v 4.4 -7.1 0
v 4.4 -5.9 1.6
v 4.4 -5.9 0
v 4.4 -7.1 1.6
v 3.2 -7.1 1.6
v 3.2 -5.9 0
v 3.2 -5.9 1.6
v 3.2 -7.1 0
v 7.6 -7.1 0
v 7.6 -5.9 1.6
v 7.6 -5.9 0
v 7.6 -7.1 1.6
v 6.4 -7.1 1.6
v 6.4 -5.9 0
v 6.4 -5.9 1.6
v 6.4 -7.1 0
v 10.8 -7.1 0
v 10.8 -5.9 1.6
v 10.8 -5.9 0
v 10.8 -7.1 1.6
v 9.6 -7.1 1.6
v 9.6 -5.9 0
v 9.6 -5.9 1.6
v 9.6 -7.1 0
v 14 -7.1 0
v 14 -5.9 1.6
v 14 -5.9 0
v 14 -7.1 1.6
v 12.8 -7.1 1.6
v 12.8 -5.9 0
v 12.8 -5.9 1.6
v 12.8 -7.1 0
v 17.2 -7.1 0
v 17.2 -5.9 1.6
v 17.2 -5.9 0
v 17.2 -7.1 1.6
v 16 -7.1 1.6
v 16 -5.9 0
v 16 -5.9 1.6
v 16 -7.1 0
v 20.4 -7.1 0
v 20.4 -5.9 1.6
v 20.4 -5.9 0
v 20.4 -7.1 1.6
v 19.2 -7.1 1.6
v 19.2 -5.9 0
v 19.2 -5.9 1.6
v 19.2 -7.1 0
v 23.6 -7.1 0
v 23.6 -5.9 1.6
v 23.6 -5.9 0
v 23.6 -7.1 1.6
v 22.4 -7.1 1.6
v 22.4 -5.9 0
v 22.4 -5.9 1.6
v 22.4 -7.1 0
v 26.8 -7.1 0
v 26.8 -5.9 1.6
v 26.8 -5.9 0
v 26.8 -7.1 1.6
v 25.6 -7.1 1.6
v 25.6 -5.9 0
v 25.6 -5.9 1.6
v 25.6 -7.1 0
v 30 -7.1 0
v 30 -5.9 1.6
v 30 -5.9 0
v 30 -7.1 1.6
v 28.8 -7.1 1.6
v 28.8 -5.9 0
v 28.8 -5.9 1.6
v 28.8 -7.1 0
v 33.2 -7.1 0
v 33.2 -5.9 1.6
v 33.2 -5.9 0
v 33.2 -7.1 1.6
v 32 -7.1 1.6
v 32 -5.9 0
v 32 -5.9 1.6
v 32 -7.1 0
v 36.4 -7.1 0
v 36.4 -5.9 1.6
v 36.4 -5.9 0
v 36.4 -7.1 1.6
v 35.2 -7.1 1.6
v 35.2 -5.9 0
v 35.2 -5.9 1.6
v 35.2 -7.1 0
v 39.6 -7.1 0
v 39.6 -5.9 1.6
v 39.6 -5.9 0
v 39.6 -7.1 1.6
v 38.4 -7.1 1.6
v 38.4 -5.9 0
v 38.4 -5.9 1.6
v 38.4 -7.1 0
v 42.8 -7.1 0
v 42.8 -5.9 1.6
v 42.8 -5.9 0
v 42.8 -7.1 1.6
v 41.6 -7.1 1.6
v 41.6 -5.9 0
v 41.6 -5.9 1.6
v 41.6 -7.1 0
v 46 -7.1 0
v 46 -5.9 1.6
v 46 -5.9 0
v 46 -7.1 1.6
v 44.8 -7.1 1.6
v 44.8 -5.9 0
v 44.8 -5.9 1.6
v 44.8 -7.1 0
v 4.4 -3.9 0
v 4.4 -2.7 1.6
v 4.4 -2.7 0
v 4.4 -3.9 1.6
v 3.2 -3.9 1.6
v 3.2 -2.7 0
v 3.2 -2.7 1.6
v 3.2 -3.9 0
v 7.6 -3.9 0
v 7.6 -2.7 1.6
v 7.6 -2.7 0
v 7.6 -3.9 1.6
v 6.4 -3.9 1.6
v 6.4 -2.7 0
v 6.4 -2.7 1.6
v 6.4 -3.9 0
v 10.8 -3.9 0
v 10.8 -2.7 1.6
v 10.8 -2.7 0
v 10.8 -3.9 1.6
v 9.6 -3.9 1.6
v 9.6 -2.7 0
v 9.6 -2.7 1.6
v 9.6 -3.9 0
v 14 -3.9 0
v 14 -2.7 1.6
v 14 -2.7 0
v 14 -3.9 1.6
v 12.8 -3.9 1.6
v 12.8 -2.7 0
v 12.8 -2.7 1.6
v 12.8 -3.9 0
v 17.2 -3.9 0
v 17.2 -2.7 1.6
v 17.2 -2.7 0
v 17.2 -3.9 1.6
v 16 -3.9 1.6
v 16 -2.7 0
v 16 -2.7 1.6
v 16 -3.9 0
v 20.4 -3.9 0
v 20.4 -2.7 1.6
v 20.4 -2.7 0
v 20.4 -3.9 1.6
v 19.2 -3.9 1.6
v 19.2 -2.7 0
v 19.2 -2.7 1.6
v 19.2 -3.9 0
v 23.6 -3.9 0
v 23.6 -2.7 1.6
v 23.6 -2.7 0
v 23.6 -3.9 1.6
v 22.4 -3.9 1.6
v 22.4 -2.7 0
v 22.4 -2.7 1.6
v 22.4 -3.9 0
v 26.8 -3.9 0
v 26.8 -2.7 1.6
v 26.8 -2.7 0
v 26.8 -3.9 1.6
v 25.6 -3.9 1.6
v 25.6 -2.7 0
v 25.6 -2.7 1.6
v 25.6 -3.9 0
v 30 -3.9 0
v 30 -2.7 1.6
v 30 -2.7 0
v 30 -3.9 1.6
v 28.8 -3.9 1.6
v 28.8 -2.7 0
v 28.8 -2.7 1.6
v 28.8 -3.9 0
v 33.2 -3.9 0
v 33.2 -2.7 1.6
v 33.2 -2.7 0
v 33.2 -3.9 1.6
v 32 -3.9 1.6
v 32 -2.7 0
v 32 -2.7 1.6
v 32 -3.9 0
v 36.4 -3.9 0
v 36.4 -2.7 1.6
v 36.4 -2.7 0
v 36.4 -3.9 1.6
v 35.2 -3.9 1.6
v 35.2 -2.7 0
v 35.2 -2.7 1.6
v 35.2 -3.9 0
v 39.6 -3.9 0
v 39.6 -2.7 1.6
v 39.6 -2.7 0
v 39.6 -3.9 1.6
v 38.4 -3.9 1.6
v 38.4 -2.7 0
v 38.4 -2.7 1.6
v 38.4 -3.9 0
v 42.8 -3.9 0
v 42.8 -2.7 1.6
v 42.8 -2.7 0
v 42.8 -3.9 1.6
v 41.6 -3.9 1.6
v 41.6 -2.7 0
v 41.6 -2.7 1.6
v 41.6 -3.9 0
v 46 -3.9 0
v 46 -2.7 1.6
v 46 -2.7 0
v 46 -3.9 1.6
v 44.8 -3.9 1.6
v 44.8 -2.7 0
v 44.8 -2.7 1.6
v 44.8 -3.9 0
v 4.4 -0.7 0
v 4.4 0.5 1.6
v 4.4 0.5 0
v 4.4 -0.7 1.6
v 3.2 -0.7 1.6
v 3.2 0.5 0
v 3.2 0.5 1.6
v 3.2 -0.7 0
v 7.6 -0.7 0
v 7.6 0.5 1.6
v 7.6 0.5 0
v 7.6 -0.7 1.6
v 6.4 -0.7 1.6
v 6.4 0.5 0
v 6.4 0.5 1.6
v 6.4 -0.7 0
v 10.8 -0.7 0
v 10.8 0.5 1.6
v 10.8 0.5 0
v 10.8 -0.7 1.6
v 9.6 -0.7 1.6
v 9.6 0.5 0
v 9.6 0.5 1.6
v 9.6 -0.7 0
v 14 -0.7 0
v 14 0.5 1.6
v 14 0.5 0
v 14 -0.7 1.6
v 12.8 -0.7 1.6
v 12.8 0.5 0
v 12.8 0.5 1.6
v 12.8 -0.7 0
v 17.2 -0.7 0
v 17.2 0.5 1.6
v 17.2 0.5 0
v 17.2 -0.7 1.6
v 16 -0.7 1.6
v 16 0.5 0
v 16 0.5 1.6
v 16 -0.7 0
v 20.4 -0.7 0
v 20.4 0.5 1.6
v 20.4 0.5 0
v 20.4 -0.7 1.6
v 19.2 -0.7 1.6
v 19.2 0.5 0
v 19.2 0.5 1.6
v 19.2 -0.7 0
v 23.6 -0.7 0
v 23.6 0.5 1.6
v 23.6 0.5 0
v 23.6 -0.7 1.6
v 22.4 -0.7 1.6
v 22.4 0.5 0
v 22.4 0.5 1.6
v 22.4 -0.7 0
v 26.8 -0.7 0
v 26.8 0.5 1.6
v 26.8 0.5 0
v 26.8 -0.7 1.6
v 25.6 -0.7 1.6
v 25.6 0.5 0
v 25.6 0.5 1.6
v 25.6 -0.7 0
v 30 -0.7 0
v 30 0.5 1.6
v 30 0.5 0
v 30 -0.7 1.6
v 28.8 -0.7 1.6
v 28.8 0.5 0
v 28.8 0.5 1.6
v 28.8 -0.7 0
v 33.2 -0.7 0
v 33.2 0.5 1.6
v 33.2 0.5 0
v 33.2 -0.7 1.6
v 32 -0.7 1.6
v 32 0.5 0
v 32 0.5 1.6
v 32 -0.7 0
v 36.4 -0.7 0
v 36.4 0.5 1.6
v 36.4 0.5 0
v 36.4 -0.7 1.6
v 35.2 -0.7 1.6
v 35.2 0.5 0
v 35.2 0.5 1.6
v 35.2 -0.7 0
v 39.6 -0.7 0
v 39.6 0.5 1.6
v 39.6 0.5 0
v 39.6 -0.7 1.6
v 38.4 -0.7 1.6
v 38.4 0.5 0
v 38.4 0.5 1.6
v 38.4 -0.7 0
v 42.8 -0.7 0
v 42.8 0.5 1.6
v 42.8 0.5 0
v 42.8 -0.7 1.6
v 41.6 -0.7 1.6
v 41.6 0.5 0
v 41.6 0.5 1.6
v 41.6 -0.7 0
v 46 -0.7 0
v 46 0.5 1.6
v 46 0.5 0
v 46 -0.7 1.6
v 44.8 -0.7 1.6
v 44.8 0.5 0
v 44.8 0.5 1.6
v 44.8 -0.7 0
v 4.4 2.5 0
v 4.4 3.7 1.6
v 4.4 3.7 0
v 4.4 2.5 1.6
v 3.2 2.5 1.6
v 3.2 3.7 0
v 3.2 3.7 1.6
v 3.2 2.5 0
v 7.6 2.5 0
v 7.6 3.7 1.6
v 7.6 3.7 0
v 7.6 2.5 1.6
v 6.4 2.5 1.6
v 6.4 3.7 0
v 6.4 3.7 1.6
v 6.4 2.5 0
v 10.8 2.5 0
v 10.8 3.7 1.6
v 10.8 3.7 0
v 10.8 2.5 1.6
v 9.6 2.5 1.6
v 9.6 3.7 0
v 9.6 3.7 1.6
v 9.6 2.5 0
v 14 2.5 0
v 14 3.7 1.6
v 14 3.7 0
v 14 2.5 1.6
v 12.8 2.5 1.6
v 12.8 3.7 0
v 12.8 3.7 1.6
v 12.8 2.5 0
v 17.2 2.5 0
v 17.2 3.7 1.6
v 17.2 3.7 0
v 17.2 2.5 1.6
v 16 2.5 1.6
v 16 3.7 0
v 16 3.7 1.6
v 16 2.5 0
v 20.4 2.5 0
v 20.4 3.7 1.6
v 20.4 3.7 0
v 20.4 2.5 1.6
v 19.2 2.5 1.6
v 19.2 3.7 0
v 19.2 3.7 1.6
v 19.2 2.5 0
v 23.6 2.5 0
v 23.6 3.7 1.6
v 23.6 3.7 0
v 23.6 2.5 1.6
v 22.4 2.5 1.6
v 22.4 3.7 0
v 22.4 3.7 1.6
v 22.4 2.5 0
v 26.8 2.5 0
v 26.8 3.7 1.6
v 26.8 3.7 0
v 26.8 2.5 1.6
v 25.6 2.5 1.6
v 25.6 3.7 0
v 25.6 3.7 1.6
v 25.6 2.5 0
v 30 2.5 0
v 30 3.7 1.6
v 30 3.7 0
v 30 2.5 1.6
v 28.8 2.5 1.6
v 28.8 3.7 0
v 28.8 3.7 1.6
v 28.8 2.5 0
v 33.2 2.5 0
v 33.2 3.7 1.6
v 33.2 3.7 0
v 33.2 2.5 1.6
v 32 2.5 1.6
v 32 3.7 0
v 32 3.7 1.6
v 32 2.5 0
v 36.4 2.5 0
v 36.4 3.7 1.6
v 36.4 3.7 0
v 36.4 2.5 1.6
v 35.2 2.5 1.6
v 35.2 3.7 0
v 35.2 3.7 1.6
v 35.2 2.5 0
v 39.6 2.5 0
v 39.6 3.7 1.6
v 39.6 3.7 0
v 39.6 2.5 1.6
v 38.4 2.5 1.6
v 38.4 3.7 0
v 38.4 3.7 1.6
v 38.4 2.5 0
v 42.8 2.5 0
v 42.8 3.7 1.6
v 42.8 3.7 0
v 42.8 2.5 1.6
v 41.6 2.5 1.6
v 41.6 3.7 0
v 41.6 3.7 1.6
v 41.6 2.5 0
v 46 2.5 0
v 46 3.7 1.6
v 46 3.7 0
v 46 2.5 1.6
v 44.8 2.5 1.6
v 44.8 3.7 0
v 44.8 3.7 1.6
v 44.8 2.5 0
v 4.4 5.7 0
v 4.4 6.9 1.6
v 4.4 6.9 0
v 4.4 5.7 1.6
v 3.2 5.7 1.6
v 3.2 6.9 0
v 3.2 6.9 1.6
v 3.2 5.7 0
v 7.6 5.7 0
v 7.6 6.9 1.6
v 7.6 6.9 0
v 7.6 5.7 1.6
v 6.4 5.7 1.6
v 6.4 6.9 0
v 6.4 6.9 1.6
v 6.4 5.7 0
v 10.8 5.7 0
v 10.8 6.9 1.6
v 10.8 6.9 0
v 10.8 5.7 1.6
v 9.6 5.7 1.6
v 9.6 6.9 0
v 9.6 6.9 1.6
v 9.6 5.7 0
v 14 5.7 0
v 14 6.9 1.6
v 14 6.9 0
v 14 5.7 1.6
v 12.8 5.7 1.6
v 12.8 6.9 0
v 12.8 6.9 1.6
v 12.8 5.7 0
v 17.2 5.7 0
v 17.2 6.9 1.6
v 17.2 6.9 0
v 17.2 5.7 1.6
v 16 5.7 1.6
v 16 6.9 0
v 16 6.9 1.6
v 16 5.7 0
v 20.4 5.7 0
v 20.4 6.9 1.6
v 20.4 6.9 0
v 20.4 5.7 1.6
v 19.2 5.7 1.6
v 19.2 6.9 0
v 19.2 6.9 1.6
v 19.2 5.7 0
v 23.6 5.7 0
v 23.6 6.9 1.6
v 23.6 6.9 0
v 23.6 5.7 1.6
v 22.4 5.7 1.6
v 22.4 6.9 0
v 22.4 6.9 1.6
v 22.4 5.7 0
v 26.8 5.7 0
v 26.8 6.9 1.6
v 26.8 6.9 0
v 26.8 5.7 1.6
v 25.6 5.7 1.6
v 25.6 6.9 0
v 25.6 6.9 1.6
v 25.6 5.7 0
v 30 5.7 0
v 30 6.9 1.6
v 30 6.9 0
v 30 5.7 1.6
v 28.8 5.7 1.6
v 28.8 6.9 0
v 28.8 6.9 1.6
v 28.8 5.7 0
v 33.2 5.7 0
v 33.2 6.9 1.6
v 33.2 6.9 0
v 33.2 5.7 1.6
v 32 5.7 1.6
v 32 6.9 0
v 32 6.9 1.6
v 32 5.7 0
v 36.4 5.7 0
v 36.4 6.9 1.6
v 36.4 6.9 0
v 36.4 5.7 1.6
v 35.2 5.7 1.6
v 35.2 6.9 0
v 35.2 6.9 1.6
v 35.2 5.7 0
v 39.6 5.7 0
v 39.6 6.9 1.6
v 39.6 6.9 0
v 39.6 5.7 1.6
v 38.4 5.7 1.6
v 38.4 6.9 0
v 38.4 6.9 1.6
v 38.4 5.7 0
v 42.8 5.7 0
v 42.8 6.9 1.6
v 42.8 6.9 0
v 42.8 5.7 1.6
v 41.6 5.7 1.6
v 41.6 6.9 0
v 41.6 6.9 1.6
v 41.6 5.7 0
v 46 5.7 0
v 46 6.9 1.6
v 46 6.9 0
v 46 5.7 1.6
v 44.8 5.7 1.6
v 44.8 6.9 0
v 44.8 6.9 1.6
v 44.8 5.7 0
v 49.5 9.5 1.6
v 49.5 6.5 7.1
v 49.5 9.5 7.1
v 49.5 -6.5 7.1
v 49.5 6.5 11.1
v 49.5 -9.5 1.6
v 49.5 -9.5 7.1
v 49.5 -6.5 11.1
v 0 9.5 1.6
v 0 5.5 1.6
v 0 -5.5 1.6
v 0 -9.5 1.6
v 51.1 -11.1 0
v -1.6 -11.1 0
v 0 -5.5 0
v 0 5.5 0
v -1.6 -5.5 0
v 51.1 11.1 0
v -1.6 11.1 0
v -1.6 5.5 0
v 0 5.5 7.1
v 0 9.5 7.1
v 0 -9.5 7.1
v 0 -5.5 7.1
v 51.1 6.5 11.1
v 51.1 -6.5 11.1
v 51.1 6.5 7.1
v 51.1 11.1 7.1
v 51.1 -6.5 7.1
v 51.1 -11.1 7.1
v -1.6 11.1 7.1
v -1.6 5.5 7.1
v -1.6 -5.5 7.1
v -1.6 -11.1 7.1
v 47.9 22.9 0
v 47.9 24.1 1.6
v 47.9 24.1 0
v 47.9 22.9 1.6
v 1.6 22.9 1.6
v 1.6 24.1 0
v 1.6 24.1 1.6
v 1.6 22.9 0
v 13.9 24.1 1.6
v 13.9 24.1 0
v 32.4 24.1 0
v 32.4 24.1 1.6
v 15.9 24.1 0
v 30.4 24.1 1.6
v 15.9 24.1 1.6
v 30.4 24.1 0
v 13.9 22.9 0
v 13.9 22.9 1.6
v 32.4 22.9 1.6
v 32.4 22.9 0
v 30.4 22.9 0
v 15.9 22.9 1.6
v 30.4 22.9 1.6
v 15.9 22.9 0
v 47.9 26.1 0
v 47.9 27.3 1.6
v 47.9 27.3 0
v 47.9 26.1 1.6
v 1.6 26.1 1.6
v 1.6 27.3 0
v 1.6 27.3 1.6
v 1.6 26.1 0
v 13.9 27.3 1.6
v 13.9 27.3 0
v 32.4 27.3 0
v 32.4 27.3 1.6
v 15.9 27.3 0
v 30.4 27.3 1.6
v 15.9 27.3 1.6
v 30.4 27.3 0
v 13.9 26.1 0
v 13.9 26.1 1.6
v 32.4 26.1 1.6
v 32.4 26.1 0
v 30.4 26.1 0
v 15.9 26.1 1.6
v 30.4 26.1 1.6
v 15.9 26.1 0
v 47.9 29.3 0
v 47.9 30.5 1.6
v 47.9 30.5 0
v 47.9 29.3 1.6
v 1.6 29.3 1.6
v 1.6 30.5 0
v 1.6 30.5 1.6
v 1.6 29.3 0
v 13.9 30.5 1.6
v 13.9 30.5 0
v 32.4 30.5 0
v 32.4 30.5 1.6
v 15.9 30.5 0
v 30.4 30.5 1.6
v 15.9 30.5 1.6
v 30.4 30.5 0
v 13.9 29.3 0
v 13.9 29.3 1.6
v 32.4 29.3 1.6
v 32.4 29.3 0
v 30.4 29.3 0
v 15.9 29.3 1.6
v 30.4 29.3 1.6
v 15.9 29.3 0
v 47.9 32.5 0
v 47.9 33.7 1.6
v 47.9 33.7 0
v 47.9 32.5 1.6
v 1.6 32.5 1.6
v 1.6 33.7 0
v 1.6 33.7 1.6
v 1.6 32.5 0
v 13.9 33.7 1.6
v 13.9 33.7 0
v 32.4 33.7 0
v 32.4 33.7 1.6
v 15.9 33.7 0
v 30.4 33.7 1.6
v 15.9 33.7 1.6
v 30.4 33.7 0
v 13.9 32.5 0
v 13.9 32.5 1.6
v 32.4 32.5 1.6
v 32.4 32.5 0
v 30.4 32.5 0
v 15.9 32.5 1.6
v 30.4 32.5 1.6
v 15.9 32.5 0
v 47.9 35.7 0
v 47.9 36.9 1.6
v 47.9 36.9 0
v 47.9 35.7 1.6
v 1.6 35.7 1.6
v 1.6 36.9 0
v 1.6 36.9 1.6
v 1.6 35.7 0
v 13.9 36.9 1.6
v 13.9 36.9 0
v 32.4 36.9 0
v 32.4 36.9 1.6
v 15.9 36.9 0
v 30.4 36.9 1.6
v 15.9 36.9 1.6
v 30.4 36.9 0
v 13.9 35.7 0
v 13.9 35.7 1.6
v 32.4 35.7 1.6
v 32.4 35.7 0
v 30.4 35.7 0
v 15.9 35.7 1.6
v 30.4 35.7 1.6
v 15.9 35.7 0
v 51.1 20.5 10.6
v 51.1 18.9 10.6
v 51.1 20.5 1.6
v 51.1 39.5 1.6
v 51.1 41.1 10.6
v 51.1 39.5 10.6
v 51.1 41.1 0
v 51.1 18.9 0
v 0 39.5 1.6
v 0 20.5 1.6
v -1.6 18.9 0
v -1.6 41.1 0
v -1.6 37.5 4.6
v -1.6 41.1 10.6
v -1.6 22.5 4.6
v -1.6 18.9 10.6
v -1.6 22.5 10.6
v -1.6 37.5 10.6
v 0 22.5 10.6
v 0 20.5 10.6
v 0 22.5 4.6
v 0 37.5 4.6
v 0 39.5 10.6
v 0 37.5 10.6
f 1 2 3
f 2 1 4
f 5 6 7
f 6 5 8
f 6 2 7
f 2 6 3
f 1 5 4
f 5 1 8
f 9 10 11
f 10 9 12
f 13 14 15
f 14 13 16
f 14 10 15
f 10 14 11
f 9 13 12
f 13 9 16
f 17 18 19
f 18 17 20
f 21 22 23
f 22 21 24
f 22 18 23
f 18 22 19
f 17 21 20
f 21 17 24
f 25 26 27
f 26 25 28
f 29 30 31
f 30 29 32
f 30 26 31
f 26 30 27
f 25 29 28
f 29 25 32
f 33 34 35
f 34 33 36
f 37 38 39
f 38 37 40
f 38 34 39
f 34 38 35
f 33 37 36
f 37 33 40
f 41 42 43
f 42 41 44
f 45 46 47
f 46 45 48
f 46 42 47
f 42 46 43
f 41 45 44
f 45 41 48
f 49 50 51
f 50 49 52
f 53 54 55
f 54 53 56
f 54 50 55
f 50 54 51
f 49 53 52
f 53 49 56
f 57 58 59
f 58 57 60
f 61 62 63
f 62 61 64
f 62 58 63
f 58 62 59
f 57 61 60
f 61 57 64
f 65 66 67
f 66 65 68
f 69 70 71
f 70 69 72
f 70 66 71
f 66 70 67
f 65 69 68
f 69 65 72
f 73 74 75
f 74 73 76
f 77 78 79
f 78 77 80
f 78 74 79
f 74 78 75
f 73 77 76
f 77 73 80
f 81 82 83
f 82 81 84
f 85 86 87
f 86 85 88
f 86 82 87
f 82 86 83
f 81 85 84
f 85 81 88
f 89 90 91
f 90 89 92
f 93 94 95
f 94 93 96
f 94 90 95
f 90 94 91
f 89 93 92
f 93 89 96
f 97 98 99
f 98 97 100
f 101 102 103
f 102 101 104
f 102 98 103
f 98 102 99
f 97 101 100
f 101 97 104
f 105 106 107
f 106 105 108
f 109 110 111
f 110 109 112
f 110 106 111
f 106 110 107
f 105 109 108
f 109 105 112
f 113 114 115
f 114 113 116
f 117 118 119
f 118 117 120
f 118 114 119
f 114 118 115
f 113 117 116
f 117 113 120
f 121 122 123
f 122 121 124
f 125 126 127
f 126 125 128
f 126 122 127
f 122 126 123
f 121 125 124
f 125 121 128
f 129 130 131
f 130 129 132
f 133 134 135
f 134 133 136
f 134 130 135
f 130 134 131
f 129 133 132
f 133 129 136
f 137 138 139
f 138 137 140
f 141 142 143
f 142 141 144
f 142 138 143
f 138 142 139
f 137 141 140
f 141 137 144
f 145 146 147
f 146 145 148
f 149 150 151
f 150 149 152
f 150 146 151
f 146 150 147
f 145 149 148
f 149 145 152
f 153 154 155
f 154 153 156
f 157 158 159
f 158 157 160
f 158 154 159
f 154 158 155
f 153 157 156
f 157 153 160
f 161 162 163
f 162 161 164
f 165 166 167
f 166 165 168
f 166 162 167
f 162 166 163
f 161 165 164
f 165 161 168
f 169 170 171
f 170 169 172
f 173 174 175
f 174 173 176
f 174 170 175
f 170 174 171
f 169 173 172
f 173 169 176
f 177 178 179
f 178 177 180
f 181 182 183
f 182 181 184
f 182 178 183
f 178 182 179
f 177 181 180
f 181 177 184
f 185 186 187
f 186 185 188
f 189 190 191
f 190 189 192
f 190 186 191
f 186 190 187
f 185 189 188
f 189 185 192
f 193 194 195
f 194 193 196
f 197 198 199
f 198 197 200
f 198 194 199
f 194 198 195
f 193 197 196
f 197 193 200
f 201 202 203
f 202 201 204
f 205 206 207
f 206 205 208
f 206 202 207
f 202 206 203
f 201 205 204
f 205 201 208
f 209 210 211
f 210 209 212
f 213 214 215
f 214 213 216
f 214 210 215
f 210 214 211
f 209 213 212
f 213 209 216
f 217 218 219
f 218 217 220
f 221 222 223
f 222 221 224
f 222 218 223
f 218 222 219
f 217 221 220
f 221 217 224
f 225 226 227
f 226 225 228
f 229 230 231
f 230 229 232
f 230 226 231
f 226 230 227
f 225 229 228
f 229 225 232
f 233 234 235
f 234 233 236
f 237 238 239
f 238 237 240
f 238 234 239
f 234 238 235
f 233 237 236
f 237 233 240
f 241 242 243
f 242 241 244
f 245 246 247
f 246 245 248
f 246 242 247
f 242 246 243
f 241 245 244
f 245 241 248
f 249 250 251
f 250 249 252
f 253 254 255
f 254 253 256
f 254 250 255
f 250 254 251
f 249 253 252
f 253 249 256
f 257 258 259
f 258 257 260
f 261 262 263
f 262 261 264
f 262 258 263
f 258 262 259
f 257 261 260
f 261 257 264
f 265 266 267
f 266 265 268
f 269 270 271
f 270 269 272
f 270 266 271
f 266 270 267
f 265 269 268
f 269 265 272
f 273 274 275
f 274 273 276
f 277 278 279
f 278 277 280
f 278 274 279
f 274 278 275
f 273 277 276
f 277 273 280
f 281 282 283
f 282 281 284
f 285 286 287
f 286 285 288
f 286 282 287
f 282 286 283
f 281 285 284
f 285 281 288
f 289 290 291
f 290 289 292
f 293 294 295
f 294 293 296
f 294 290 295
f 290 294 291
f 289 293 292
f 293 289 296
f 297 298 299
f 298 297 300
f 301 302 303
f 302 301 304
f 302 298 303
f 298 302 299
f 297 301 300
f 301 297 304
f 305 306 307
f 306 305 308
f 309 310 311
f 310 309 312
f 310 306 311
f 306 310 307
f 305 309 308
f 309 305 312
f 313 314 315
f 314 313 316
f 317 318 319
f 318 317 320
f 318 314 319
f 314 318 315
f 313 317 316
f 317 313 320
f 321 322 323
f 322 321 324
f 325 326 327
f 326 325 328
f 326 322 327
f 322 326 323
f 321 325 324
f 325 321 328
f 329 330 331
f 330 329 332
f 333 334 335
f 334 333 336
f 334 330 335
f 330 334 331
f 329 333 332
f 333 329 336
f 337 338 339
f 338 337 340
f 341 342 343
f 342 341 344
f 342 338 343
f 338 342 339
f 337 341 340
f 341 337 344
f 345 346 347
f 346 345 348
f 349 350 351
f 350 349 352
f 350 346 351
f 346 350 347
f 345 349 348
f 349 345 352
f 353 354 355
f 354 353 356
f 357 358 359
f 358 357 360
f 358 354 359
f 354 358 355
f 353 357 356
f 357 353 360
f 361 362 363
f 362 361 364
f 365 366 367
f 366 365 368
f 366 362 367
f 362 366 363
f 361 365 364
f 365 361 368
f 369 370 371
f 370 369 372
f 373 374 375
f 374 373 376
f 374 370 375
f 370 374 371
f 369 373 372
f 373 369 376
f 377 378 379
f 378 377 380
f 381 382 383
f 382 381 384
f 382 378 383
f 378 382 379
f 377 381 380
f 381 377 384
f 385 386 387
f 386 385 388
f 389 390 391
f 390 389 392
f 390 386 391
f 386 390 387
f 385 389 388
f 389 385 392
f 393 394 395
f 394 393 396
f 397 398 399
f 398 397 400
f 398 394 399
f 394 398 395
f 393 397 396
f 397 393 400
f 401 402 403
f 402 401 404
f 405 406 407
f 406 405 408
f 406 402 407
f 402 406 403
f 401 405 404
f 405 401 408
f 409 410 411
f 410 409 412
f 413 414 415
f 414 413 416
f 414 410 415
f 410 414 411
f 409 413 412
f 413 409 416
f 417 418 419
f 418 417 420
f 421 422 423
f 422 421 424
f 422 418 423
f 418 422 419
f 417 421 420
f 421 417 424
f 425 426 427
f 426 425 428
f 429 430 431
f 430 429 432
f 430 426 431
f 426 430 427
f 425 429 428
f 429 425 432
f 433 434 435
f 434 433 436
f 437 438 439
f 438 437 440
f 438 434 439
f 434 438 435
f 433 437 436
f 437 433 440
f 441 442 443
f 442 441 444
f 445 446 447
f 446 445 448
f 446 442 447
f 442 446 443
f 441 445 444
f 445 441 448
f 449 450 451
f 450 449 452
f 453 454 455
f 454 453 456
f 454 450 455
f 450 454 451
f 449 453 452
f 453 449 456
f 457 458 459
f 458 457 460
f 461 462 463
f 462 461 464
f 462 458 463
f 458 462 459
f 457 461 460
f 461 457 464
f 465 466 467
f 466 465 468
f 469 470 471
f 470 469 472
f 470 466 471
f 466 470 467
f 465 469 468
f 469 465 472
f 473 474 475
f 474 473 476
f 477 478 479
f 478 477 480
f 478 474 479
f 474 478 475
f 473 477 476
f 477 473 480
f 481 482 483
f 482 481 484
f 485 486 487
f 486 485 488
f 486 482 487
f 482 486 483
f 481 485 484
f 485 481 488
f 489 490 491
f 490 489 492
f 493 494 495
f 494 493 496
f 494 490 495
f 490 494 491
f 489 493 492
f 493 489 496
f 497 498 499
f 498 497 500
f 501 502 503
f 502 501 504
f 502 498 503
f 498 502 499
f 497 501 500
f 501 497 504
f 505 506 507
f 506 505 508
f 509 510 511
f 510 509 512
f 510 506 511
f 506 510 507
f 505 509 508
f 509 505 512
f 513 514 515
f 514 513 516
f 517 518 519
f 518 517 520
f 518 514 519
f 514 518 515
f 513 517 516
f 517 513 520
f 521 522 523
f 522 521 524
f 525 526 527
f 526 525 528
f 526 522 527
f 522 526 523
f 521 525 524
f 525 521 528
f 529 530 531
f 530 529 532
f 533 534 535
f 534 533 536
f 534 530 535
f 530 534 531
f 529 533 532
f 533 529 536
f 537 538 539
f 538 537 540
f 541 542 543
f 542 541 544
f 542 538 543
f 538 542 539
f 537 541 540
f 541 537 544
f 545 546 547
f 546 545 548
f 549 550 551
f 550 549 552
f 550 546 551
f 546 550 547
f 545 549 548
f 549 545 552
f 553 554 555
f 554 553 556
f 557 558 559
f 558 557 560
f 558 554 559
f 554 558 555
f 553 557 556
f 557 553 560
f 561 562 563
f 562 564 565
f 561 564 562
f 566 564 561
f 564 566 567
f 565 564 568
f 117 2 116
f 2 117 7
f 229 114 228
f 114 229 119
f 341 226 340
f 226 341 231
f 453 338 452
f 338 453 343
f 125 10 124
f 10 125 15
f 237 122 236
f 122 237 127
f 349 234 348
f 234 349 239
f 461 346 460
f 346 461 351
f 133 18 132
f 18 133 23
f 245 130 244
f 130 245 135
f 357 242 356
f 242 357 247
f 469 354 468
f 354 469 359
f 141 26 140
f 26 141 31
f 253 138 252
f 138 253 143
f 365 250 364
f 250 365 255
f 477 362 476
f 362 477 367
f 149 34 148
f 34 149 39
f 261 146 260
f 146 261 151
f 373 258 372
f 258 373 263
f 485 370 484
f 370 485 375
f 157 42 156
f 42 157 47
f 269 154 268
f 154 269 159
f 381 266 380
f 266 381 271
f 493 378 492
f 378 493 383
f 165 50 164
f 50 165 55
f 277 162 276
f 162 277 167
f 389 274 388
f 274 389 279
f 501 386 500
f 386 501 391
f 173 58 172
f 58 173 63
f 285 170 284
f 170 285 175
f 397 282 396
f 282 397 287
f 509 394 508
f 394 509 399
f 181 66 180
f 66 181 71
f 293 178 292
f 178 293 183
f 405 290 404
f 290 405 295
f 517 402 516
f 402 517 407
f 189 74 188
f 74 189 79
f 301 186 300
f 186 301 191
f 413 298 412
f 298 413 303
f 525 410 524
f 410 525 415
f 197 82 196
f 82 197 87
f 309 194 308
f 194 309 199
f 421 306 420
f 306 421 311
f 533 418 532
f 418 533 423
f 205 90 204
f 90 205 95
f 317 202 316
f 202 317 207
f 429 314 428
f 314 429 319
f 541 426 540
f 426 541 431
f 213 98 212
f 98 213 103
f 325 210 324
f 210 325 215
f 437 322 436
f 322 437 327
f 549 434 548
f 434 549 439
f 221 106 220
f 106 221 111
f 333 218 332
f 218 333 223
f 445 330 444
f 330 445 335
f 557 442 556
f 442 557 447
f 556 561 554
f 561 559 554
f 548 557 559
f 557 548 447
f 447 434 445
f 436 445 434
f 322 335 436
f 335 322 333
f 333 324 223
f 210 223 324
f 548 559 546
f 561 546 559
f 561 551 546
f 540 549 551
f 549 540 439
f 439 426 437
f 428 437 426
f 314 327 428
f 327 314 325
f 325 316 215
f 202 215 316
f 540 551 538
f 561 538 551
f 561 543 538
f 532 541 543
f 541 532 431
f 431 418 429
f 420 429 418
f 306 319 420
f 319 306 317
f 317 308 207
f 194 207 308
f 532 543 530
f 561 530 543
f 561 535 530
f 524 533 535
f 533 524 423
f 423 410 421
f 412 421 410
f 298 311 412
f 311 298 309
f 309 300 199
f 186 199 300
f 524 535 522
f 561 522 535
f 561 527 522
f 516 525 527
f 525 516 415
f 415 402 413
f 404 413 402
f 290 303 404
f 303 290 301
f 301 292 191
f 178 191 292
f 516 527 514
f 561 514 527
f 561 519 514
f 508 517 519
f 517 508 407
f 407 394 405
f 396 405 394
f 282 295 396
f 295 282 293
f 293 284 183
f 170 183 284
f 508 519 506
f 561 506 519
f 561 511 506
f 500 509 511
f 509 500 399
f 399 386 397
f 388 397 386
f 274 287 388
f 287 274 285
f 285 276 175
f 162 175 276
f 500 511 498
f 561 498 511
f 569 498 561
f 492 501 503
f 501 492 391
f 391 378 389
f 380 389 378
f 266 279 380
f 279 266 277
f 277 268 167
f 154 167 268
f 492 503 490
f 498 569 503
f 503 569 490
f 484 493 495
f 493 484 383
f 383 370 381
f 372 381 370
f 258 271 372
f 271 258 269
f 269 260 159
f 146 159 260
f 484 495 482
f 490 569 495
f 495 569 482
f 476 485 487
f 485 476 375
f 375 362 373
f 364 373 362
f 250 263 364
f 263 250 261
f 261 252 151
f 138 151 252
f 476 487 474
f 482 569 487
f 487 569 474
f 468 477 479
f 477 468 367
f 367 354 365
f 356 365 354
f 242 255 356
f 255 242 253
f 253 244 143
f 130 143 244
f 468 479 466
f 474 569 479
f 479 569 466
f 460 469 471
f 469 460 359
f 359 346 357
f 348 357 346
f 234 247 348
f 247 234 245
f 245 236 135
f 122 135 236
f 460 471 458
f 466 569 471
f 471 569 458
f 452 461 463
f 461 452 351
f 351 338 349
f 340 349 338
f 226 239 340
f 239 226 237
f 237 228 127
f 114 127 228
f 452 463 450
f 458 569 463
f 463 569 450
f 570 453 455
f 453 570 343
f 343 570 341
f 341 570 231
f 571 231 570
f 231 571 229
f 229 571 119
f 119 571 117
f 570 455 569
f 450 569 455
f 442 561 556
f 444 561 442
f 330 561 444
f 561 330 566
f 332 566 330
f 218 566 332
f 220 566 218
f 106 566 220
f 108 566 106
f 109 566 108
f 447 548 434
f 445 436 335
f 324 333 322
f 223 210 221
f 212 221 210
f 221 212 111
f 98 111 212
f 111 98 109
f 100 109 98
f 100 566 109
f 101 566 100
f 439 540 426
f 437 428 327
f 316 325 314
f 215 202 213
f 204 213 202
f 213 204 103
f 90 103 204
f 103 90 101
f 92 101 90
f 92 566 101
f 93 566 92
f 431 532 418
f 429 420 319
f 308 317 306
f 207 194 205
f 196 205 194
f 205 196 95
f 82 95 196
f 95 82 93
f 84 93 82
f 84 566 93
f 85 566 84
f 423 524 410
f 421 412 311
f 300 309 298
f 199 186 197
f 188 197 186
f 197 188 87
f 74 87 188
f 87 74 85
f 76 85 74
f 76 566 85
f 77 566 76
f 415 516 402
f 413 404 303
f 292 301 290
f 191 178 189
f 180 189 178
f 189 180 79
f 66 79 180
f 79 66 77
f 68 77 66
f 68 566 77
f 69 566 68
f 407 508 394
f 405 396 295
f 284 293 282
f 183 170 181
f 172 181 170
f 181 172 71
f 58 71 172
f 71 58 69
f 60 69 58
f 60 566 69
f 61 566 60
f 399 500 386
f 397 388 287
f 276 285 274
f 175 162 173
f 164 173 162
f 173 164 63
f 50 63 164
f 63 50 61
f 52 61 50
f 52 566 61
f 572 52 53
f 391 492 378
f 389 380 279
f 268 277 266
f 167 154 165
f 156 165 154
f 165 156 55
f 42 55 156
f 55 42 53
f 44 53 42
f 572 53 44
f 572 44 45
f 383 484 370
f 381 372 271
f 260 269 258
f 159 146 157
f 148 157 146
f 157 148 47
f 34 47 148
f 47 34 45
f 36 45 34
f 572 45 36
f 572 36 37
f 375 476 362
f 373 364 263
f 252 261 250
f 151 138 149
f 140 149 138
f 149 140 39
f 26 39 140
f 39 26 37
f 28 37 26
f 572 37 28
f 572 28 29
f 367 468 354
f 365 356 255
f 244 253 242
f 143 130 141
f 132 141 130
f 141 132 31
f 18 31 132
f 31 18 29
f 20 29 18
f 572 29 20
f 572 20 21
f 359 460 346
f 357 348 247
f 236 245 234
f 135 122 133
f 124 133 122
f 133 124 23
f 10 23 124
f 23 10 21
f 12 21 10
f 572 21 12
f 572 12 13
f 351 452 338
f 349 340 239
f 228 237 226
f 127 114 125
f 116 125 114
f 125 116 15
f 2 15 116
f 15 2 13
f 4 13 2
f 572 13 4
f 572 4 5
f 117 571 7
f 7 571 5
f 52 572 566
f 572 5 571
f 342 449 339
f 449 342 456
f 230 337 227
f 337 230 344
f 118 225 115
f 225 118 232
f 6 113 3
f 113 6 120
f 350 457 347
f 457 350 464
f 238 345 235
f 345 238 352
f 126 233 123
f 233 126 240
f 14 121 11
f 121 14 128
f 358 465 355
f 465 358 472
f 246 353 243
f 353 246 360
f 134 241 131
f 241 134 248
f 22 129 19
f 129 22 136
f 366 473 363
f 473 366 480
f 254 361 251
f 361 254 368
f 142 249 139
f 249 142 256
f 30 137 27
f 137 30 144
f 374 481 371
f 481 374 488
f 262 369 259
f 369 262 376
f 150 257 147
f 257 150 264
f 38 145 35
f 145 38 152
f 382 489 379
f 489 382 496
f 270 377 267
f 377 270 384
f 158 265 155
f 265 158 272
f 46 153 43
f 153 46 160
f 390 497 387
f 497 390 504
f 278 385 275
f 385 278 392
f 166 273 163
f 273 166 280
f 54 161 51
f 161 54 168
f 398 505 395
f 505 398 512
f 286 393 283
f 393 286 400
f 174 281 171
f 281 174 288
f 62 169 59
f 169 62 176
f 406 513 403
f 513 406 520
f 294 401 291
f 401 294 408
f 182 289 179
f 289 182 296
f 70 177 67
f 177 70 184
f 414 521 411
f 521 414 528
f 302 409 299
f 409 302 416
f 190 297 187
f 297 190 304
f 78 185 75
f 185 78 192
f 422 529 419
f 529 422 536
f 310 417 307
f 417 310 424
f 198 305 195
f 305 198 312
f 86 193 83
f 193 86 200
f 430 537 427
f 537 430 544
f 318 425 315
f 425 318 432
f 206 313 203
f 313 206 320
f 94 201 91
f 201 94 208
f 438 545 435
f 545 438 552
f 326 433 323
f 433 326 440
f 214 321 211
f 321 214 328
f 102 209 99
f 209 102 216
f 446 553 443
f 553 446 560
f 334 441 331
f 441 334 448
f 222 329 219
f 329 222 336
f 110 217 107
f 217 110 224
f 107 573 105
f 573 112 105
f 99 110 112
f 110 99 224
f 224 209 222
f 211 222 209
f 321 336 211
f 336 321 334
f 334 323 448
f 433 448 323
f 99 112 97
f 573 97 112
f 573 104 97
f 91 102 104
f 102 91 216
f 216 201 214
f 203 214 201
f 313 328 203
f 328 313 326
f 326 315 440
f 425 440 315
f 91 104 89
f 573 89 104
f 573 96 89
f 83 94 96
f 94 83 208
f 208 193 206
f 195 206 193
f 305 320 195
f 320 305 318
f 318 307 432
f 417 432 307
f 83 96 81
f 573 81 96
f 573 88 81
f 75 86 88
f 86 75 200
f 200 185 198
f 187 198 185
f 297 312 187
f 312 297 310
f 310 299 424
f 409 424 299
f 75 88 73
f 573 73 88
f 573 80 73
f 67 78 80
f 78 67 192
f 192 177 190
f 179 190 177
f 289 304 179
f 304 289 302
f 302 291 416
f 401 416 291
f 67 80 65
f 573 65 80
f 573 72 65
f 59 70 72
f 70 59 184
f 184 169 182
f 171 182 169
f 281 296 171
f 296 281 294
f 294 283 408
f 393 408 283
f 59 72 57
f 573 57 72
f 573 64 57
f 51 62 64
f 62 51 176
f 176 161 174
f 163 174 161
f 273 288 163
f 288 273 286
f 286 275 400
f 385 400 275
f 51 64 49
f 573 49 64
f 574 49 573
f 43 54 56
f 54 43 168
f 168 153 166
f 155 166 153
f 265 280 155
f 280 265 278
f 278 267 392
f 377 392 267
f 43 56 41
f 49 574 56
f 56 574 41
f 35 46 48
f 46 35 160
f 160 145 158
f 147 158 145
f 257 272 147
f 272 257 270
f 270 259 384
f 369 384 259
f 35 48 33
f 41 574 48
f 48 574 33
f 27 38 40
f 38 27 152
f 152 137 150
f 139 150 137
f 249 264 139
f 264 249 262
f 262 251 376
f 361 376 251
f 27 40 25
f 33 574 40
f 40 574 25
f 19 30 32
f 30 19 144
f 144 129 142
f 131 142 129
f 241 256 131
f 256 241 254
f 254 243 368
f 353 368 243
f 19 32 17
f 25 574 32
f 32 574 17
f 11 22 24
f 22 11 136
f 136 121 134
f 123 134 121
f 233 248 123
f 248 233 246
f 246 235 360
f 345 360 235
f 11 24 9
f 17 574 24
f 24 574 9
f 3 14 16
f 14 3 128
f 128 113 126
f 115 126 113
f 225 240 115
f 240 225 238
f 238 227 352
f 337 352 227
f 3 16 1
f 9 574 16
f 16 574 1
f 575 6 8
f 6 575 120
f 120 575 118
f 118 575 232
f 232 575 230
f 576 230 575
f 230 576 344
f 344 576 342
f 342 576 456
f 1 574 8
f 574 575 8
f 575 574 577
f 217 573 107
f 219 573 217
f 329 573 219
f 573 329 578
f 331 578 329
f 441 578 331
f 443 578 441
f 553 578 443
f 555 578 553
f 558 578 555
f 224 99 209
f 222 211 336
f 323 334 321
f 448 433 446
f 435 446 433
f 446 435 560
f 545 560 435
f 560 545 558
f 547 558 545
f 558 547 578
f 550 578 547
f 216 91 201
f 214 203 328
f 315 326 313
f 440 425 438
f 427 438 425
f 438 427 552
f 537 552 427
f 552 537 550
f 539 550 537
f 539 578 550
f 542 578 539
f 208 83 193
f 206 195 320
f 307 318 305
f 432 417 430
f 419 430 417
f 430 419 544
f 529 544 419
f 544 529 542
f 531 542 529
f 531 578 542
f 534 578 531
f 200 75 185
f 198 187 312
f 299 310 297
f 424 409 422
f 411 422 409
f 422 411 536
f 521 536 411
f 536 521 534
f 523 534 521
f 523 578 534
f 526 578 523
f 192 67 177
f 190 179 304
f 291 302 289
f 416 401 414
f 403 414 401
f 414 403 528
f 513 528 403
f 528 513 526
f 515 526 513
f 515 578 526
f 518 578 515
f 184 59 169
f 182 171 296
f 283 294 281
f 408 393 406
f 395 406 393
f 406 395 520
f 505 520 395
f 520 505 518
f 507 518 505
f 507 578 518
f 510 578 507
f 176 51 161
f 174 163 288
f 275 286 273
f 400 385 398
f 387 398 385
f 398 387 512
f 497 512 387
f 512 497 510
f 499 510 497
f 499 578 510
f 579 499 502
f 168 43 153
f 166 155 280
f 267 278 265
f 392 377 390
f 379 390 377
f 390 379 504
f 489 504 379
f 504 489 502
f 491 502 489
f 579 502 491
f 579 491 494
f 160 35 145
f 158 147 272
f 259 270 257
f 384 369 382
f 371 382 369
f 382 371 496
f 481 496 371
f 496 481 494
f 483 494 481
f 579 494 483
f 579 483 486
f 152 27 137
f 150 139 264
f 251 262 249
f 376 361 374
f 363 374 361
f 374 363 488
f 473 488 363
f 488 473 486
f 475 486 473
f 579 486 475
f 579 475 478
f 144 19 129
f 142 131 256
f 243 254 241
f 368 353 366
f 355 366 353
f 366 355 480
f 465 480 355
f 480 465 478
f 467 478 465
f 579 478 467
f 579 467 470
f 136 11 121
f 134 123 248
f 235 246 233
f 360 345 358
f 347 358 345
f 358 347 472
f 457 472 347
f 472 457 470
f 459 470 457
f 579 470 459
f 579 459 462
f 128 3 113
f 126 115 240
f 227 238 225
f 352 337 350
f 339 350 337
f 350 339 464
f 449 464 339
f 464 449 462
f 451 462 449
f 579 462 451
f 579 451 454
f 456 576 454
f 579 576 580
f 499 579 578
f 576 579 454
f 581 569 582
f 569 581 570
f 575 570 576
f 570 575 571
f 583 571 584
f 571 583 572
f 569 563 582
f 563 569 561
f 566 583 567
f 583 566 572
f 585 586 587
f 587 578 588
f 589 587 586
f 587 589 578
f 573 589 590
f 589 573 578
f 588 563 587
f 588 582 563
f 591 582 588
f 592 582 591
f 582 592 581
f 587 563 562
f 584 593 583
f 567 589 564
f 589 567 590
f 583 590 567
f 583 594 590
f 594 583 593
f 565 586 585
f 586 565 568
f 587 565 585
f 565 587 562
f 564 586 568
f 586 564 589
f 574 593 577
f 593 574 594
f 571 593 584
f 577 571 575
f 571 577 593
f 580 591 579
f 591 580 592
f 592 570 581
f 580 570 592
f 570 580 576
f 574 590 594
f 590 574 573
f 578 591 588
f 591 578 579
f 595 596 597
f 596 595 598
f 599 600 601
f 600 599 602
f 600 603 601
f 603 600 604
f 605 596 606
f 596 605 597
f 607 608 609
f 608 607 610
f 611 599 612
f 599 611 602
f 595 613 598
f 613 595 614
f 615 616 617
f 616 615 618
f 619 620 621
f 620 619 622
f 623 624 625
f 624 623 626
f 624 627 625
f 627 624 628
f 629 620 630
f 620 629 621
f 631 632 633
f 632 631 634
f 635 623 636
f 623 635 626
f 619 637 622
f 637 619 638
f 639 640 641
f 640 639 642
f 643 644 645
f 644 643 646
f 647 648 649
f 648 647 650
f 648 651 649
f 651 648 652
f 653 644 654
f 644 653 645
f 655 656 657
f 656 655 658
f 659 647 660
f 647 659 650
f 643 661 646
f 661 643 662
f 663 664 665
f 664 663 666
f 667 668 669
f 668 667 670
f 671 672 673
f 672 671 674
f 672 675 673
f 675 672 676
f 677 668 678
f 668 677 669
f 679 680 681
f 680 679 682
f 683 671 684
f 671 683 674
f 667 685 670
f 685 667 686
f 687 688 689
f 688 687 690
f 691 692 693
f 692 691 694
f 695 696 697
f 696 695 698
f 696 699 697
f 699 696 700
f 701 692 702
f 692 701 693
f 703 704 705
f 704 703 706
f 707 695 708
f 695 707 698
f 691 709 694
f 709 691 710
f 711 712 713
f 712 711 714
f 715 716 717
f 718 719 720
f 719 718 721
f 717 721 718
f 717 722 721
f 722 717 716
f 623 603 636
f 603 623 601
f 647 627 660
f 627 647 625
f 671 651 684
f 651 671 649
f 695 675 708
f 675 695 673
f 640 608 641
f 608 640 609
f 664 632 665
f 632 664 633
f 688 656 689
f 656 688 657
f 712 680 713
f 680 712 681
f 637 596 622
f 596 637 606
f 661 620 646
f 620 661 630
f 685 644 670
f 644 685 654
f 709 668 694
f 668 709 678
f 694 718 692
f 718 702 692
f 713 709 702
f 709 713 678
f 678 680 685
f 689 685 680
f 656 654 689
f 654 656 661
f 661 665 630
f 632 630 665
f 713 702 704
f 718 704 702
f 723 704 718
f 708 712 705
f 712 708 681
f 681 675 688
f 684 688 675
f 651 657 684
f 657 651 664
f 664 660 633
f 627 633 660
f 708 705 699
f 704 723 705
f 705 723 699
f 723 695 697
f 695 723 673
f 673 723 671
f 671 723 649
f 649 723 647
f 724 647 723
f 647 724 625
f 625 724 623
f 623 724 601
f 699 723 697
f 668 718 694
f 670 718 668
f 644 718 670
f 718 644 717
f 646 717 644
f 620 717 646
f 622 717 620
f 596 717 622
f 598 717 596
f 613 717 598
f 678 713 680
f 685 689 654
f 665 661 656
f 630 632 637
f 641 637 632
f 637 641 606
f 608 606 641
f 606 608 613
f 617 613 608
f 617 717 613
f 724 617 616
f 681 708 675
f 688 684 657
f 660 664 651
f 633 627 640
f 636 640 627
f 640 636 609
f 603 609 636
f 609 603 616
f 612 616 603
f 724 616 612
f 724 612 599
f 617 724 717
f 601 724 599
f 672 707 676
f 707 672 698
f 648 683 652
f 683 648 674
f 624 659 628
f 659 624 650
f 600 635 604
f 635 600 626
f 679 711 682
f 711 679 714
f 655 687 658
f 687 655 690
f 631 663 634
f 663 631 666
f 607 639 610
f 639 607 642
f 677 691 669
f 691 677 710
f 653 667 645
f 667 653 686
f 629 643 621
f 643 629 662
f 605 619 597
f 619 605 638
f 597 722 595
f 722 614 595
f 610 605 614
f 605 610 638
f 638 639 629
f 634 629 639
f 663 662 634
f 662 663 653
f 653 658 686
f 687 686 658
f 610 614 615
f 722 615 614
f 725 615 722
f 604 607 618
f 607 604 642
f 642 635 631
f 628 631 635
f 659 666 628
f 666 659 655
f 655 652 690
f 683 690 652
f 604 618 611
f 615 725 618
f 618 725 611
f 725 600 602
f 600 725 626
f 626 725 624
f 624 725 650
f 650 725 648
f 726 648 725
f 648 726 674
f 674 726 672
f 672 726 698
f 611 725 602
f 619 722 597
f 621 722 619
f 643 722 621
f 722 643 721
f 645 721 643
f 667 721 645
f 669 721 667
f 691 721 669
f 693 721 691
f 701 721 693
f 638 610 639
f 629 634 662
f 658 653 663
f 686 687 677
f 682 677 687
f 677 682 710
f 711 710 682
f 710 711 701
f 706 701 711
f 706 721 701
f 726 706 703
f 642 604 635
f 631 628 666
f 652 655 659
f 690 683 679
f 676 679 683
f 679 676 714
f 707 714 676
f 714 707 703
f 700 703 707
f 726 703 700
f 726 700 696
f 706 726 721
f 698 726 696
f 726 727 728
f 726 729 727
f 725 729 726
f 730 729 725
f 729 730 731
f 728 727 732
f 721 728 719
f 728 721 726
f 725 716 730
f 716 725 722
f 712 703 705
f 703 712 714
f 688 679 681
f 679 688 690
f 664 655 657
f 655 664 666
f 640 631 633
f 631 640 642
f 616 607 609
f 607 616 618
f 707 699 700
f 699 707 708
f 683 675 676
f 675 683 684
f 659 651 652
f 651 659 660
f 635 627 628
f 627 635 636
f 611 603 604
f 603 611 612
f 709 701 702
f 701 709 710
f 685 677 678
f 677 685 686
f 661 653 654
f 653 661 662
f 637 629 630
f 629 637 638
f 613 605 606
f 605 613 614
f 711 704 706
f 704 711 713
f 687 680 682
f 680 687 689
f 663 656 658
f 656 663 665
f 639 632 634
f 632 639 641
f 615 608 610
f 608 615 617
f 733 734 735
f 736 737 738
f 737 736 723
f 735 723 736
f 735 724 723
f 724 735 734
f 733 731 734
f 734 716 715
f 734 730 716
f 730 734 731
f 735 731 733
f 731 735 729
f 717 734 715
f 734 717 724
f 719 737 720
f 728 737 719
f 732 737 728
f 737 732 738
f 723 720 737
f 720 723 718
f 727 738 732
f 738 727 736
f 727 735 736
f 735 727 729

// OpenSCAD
// Length of PCB
L_PCB = 49.5;

// Width of PCB
B_PCB = 19;

// Height of PCB + Components on the Bottom Side
H_PCB_COMP = 5.5;

// Thickness of shell.
D = 1.6;

// Width of Holes
B_HOLE = 1.2;

// Hole spacing 
B_HOLE_SPACE = 2;

BB = B_HOLE+B_HOLE_SPACE;

// Height of the Top components
H_TOP_COMP = 9;

// Height of the USB-A Port measured from PCB
H_USBA = 6;


translate([0,-B_PCB/2,0]) {
	difference() {
		cube([L_PCB, B_PCB, D]);
		for(i= [0:4]){
			for(j = [0:13]){
				translate([2*D+BB*j, 1.5*D+BB*i, -D])
				cube([B_HOLE,B_HOLE,3*D]);
			}
		}

	}
		
	// Front with holes for USB
	translate([-D,0,0])
		cube([D, 4, H_PCB_COMP+D]);
	
	translate([-D,B_PCB-4,0])
		cube([D, 4, H_PCB_COMP+D]);

	
	// Back
	translate([L_PCB,0,0]){
		cube([D, B_PCB, H_PCB_COMP+D]);
		translate([0, 3, H_PCB_COMP+D])
			cube([D, B_PCB-6, 4]);
	}
	// Sides
	translate([-D,-D,0])
		cube([L_PCB+2*D, D, H_PCB_COMP+D]);


	translate([-D, B_PCB, 0])
		cube([L_PCB+2*D, D, H_PCB_COMP+D]);
}


translate([-D,30-(B_PCB+2*D)/2,0]) {
	
	difference() {
		cube([L_PCB+2*D,B_PCB+2*D,D]);
		
		for(i= [1:5]){
			translate([D*2, D*.5+BB*i, -D])
			cube([L_PCB-2*D,B_HOLE,3*D]);
		}
	}
	
	translate([L_PCB/3-B_HOLE_SPACE/2,0,0])
		cube([B_HOLE_SPACE,B_PCB+2*D,D]);
	translate([L_PCB*2/3-B_HOLE_SPACE/2,0,0])
		cube([B_HOLE_SPACE,B_PCB+2*D,D]);
	
	
	translate([0,D,0])
		cube([D,2,H_TOP_COMP+D]);
	translate([0,B_PCB+D-2,0])
		cube([D,2,H_TOP_COMP+D]);
	cube([D,B_PCB,H_TOP_COMP-H_USBA+D]);
	


	// Sides
	translate([0,-0,0])
		cube([L_PCB+2*D, D, H_TOP_COMP+D]);
	translate([0, B_PCB+D, 0])
		cube([L_PCB+2*D, D, H_TOP_COMP+D]);

}
